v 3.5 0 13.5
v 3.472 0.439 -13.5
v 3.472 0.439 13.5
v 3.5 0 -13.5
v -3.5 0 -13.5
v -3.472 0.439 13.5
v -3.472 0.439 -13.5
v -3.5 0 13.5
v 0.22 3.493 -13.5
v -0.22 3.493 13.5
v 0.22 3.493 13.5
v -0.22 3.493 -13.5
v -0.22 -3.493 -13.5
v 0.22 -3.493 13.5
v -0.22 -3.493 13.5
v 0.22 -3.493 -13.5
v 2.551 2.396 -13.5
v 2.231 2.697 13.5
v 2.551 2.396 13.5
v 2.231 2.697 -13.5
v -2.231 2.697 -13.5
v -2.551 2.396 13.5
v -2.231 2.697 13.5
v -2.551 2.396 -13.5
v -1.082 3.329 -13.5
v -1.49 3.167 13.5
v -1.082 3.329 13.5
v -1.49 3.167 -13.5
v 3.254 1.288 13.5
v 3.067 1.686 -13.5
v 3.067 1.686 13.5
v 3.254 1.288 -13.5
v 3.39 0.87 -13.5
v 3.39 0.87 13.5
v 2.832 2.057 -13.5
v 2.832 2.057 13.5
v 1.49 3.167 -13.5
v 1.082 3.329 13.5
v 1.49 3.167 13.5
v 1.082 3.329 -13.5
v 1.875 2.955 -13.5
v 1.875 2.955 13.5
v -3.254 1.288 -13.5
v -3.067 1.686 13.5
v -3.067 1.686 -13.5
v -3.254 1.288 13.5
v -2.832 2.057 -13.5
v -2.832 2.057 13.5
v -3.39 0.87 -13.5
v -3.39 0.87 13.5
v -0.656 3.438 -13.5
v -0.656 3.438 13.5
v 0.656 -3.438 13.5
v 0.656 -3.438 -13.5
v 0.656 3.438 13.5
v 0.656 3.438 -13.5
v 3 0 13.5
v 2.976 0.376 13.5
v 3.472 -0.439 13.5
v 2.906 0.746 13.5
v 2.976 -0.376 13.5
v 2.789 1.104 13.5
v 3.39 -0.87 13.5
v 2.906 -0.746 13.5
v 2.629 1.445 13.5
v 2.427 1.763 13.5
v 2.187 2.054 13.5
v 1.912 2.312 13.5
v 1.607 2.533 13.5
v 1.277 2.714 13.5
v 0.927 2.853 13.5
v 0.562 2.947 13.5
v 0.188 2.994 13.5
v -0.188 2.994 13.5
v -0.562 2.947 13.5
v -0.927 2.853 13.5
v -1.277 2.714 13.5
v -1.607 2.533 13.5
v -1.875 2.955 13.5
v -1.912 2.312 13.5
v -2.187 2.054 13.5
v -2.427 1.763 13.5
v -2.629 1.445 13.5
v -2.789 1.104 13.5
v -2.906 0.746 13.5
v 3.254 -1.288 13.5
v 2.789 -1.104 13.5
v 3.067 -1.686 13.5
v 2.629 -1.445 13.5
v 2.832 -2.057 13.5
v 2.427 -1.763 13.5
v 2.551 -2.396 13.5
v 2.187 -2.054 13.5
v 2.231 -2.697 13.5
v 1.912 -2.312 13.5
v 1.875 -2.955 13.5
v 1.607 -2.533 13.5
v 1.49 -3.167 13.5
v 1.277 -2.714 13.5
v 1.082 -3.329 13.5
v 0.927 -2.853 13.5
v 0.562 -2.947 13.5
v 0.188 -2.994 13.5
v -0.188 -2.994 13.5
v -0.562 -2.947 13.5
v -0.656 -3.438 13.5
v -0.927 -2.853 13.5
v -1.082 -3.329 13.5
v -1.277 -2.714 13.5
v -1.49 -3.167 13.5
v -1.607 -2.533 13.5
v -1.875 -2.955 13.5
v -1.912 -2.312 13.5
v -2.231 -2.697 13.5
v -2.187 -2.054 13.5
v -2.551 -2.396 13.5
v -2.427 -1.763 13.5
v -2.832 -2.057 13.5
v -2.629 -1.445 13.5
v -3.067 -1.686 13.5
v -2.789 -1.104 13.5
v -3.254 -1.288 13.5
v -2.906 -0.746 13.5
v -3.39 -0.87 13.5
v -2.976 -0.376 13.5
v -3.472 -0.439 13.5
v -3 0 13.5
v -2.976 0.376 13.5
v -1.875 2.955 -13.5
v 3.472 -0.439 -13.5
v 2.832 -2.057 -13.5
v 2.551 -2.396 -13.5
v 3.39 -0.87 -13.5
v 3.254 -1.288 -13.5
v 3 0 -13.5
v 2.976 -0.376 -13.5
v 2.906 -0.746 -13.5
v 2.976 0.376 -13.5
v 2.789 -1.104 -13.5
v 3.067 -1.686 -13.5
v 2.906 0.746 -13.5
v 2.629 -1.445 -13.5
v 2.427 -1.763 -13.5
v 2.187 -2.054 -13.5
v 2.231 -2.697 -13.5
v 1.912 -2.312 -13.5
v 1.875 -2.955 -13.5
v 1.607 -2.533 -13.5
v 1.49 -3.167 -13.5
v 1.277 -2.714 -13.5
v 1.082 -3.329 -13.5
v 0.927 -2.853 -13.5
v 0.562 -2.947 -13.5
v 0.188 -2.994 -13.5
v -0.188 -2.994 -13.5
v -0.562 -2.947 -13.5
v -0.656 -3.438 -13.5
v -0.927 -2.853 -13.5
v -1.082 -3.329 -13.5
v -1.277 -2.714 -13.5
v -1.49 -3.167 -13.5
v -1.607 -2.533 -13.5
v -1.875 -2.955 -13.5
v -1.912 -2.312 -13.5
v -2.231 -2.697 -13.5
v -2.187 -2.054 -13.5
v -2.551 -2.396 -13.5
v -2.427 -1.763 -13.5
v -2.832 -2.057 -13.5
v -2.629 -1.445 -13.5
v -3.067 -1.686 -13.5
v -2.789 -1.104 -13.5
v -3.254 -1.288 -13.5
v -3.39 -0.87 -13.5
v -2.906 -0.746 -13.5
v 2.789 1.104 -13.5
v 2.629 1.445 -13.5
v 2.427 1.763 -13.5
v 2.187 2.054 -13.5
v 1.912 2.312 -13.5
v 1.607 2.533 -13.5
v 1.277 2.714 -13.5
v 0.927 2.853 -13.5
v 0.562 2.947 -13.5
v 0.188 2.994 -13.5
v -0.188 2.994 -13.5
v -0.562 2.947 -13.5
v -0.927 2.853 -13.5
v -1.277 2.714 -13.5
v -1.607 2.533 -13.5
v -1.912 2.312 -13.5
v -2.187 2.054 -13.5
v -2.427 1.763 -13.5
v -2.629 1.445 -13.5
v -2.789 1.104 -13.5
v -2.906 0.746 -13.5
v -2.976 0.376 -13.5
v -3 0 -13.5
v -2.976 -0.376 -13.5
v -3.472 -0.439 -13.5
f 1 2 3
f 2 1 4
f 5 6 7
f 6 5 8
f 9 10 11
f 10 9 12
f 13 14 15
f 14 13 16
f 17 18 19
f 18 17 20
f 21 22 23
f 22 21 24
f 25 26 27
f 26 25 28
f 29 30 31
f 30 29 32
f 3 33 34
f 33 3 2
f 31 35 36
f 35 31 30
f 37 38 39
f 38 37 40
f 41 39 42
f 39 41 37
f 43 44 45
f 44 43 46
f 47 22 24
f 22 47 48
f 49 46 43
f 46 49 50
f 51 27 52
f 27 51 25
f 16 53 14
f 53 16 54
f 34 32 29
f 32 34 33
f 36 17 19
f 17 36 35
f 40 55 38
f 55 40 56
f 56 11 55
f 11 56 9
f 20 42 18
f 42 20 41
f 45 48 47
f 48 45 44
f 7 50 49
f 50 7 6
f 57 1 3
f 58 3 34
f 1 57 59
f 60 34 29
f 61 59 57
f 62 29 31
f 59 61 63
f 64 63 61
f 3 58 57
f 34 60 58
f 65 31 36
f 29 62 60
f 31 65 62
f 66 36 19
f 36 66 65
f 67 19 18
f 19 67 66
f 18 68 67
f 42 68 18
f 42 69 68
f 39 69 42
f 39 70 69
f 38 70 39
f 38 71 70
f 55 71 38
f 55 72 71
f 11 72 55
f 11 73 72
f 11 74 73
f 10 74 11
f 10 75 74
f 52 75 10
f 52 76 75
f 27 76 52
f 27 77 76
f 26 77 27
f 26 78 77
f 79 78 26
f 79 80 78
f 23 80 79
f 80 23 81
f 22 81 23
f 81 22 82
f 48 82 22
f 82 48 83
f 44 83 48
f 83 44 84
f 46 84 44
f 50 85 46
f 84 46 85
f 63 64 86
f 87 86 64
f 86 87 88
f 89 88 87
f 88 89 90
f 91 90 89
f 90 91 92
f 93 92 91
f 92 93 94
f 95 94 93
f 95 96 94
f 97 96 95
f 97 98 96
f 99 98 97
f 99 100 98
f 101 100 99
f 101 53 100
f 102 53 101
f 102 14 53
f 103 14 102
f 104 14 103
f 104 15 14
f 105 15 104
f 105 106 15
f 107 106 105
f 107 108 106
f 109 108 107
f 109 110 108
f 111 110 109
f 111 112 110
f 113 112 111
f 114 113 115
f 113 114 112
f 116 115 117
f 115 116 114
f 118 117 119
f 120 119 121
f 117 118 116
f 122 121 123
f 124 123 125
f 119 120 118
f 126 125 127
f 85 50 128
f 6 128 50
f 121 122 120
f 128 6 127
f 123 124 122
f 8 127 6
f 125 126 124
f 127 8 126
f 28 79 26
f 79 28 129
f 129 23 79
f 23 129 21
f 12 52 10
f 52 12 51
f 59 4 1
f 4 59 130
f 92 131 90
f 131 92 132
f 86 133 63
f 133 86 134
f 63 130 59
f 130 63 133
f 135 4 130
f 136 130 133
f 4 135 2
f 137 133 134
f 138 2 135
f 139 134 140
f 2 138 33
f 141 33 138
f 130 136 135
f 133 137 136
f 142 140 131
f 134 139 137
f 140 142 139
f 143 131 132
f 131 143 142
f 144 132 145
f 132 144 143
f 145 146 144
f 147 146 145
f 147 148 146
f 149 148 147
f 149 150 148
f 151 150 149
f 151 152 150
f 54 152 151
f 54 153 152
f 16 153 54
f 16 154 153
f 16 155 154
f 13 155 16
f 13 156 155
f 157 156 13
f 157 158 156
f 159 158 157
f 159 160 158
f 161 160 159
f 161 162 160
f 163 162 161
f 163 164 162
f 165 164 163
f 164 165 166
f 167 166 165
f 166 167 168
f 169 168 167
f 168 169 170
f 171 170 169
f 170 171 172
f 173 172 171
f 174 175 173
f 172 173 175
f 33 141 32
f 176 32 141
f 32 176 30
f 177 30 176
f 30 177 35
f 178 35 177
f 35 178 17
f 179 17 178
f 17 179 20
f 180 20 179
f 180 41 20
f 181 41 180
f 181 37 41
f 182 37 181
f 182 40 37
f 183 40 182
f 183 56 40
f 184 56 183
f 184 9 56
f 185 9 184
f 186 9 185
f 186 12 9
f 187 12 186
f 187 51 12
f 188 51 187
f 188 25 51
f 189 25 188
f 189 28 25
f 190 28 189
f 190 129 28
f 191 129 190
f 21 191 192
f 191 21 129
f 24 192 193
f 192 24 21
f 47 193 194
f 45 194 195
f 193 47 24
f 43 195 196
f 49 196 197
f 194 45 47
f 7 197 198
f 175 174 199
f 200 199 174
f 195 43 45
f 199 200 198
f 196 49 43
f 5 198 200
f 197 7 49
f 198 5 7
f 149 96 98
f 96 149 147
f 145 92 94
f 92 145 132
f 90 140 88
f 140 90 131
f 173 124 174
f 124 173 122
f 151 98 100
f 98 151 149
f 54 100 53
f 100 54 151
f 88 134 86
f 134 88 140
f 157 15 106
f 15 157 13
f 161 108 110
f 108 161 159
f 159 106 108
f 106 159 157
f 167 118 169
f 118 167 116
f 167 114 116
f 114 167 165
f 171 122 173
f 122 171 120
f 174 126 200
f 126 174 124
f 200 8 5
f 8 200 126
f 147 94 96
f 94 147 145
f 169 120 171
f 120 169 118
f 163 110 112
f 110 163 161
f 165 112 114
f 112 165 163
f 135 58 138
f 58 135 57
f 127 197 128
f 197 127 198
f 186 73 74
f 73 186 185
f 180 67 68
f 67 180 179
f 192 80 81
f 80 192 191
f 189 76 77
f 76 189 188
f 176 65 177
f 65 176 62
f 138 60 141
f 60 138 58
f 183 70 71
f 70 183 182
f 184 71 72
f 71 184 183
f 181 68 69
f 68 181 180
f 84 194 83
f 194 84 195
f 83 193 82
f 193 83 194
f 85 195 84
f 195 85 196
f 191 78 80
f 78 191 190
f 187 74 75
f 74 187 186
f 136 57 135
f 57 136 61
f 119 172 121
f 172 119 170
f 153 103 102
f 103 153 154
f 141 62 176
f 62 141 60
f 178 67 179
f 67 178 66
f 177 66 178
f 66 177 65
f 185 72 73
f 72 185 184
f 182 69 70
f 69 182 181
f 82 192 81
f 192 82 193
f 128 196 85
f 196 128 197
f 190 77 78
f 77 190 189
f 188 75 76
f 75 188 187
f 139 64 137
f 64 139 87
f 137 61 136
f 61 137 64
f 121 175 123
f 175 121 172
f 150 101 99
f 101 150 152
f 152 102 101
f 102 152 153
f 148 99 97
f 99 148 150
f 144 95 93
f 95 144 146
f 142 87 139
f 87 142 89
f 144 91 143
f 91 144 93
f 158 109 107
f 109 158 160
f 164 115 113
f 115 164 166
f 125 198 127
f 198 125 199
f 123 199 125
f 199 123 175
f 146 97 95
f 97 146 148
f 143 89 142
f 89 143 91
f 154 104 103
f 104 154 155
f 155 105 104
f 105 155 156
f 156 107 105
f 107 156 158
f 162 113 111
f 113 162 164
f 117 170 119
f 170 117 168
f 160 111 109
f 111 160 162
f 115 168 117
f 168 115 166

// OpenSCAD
$fn = 50;


difference() {
	union() {
		translate(v = [0, 0, -13.5000000000]) {
			cylinder(h = 27, r = 3.5000000000);
		}
	}
	union() {
		translate(v = [0, 0, -100.0000000000]) {
			cylinder(h = 200, r = 3);
		}
	}
}
